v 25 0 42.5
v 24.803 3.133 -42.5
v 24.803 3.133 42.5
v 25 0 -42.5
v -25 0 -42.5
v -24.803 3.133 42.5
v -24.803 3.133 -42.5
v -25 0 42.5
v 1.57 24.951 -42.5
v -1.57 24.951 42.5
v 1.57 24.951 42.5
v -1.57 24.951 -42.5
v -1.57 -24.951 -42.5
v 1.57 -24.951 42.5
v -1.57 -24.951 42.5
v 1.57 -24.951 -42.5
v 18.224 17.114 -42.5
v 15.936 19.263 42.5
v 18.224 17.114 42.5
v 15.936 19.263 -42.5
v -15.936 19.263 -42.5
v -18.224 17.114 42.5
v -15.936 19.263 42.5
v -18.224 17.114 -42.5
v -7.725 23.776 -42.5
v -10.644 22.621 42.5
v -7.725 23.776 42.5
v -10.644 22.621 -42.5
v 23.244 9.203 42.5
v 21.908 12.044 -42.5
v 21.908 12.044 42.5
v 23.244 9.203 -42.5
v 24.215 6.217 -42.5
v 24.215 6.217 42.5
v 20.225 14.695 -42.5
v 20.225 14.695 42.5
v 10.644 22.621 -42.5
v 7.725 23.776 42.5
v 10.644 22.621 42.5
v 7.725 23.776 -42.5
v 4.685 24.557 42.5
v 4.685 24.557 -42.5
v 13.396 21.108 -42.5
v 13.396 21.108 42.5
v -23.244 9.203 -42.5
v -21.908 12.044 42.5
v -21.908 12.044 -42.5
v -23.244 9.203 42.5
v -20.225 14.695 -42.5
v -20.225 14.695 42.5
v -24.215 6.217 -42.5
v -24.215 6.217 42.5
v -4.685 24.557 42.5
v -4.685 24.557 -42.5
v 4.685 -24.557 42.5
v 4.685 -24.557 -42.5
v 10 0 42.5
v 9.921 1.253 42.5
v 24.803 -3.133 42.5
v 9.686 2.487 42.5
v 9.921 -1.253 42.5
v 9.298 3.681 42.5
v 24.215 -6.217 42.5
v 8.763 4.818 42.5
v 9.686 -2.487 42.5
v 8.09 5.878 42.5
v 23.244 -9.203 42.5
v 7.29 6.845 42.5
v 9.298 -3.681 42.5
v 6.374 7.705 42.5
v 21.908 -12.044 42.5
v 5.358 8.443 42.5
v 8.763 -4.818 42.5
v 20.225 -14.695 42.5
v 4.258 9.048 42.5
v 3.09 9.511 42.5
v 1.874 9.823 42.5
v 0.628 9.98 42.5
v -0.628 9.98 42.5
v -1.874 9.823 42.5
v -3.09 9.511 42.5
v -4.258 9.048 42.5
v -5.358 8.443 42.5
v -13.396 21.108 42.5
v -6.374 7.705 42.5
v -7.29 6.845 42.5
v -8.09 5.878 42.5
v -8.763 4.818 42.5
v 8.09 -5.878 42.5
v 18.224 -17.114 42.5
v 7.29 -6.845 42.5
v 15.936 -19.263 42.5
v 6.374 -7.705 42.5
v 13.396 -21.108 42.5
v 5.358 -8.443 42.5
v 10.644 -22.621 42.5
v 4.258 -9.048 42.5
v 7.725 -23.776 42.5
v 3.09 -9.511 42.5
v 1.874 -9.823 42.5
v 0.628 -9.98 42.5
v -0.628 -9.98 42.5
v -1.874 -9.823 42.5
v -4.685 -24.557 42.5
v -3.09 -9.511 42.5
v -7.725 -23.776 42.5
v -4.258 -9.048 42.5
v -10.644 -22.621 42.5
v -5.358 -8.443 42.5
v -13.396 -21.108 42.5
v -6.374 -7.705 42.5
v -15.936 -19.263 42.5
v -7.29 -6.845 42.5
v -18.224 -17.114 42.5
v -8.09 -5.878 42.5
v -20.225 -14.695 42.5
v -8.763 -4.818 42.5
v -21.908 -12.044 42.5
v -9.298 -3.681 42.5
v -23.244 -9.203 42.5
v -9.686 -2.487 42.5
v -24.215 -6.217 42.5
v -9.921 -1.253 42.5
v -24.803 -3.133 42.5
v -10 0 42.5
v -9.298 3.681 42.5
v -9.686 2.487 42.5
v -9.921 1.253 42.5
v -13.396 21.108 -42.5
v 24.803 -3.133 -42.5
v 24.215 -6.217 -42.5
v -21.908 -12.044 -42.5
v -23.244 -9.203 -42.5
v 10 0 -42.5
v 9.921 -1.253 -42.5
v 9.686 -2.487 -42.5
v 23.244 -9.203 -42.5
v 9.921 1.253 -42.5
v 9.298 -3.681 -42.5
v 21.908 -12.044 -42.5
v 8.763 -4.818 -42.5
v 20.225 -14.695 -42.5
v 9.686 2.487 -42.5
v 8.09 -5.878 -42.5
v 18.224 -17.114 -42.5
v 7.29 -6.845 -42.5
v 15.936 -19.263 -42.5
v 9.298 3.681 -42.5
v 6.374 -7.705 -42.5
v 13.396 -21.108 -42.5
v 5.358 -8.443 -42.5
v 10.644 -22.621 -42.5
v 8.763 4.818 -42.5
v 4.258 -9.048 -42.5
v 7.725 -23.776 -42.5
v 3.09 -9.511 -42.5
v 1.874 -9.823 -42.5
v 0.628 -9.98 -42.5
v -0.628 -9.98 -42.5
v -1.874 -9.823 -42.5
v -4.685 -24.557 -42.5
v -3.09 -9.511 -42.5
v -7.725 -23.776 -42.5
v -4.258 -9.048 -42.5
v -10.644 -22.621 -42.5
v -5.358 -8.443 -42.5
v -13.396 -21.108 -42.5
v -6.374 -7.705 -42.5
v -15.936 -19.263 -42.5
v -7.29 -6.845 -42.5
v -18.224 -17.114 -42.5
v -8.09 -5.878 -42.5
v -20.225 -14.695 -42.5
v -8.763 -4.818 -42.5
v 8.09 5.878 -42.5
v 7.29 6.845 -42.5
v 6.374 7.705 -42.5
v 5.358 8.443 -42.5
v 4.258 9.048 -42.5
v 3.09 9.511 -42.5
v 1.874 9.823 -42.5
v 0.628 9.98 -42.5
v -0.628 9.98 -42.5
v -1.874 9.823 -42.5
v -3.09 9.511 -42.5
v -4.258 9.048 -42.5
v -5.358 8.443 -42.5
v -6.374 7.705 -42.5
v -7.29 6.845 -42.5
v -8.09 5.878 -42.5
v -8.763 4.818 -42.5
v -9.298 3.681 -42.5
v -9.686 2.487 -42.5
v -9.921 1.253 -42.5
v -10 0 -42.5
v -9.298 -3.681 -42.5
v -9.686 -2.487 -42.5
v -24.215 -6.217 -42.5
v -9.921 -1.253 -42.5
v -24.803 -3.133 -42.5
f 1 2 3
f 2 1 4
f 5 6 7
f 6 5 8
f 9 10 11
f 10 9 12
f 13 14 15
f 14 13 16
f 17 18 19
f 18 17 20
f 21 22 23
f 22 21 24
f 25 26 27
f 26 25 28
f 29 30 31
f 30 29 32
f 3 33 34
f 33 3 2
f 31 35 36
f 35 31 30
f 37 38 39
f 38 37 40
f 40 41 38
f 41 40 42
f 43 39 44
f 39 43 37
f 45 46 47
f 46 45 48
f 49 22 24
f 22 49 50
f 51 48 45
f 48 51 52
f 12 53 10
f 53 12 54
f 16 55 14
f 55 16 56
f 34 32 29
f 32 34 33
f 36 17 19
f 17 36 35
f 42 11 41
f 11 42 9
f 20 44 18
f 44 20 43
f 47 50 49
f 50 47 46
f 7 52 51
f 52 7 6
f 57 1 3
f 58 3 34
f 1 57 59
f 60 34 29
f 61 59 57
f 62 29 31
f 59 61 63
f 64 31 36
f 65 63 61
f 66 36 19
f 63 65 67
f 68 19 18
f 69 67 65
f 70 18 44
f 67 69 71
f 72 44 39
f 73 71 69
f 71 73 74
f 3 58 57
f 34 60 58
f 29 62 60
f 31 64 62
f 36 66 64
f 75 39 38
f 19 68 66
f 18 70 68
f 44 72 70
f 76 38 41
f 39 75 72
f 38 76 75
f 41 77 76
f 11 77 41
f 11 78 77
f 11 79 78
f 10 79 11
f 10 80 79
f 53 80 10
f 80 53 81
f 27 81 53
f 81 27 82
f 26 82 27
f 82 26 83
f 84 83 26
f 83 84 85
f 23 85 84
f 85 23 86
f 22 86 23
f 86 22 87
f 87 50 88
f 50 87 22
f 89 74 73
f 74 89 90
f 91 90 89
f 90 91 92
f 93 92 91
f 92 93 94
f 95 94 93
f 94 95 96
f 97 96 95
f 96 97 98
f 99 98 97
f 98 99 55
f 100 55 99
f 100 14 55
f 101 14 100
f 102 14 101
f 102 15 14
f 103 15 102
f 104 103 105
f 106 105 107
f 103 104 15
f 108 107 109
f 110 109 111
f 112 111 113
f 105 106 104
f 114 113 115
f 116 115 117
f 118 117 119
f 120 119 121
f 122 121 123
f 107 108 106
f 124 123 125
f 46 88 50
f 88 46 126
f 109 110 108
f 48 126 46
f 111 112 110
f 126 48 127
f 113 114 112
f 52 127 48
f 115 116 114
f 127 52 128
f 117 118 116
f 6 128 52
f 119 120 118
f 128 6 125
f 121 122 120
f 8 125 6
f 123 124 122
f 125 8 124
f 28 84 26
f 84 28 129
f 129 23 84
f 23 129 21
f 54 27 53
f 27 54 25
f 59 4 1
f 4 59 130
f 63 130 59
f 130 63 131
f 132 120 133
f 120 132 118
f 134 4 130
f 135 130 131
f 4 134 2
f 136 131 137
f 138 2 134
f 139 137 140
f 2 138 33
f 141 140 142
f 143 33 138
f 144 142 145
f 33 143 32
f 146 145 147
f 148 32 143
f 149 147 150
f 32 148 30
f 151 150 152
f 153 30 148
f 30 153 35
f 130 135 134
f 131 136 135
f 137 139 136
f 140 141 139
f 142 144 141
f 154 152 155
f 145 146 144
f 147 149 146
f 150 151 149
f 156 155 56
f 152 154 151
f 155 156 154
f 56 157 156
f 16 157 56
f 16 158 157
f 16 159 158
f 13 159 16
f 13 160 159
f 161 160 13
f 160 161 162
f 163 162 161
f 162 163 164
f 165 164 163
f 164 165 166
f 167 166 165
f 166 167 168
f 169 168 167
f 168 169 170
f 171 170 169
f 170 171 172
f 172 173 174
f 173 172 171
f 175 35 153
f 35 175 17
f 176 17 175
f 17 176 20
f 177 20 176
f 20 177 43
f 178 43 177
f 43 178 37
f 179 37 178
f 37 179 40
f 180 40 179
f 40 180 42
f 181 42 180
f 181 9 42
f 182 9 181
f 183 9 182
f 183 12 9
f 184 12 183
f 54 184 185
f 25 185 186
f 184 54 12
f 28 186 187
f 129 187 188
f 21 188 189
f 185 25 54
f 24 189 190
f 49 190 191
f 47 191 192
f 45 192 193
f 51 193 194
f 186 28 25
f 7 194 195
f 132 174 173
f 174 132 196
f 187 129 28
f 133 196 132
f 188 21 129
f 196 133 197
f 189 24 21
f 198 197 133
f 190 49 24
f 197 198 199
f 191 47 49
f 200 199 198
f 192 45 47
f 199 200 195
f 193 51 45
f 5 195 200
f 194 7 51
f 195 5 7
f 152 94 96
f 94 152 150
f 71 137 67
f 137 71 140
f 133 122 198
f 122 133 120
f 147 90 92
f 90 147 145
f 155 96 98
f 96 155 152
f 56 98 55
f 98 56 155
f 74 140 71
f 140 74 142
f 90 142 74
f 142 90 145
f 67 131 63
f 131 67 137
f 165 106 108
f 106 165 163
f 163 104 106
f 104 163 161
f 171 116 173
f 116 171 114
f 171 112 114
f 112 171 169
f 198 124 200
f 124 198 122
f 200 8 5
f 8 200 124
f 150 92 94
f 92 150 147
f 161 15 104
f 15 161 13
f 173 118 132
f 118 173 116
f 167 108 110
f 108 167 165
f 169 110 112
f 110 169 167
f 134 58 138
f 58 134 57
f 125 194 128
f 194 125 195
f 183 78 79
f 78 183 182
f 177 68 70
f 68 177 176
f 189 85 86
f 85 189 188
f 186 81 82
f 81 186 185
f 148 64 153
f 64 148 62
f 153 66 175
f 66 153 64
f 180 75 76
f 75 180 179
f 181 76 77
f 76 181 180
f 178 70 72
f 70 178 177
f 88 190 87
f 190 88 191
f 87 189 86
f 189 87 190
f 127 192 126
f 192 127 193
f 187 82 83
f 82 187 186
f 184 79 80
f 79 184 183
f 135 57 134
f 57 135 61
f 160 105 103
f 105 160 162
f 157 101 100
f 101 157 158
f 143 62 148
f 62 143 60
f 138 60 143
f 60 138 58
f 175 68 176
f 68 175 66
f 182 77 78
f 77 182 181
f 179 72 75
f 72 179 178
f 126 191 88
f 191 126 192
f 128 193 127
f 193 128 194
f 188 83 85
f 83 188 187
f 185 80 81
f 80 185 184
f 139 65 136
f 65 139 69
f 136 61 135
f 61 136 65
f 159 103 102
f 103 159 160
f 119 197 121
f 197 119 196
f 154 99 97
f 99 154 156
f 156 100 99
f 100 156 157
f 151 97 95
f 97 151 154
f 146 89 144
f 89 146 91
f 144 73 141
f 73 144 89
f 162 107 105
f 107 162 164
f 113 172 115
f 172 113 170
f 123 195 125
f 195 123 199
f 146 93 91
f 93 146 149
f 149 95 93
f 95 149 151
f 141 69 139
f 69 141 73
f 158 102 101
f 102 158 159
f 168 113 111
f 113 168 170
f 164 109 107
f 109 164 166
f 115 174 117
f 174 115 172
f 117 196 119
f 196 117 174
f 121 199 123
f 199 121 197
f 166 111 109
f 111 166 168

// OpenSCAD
$fn = 50;


difference() {
	union() {
		translate(v = [0, 0, -42.5000000000]) {
			cylinder(h = 85, r = 25.0000000000);
		}
	}
	union() {
		translate(v = [0, 0, -100.0000000000]) {
			cylinder(h = 200, r = 10);
		}
	}
}
